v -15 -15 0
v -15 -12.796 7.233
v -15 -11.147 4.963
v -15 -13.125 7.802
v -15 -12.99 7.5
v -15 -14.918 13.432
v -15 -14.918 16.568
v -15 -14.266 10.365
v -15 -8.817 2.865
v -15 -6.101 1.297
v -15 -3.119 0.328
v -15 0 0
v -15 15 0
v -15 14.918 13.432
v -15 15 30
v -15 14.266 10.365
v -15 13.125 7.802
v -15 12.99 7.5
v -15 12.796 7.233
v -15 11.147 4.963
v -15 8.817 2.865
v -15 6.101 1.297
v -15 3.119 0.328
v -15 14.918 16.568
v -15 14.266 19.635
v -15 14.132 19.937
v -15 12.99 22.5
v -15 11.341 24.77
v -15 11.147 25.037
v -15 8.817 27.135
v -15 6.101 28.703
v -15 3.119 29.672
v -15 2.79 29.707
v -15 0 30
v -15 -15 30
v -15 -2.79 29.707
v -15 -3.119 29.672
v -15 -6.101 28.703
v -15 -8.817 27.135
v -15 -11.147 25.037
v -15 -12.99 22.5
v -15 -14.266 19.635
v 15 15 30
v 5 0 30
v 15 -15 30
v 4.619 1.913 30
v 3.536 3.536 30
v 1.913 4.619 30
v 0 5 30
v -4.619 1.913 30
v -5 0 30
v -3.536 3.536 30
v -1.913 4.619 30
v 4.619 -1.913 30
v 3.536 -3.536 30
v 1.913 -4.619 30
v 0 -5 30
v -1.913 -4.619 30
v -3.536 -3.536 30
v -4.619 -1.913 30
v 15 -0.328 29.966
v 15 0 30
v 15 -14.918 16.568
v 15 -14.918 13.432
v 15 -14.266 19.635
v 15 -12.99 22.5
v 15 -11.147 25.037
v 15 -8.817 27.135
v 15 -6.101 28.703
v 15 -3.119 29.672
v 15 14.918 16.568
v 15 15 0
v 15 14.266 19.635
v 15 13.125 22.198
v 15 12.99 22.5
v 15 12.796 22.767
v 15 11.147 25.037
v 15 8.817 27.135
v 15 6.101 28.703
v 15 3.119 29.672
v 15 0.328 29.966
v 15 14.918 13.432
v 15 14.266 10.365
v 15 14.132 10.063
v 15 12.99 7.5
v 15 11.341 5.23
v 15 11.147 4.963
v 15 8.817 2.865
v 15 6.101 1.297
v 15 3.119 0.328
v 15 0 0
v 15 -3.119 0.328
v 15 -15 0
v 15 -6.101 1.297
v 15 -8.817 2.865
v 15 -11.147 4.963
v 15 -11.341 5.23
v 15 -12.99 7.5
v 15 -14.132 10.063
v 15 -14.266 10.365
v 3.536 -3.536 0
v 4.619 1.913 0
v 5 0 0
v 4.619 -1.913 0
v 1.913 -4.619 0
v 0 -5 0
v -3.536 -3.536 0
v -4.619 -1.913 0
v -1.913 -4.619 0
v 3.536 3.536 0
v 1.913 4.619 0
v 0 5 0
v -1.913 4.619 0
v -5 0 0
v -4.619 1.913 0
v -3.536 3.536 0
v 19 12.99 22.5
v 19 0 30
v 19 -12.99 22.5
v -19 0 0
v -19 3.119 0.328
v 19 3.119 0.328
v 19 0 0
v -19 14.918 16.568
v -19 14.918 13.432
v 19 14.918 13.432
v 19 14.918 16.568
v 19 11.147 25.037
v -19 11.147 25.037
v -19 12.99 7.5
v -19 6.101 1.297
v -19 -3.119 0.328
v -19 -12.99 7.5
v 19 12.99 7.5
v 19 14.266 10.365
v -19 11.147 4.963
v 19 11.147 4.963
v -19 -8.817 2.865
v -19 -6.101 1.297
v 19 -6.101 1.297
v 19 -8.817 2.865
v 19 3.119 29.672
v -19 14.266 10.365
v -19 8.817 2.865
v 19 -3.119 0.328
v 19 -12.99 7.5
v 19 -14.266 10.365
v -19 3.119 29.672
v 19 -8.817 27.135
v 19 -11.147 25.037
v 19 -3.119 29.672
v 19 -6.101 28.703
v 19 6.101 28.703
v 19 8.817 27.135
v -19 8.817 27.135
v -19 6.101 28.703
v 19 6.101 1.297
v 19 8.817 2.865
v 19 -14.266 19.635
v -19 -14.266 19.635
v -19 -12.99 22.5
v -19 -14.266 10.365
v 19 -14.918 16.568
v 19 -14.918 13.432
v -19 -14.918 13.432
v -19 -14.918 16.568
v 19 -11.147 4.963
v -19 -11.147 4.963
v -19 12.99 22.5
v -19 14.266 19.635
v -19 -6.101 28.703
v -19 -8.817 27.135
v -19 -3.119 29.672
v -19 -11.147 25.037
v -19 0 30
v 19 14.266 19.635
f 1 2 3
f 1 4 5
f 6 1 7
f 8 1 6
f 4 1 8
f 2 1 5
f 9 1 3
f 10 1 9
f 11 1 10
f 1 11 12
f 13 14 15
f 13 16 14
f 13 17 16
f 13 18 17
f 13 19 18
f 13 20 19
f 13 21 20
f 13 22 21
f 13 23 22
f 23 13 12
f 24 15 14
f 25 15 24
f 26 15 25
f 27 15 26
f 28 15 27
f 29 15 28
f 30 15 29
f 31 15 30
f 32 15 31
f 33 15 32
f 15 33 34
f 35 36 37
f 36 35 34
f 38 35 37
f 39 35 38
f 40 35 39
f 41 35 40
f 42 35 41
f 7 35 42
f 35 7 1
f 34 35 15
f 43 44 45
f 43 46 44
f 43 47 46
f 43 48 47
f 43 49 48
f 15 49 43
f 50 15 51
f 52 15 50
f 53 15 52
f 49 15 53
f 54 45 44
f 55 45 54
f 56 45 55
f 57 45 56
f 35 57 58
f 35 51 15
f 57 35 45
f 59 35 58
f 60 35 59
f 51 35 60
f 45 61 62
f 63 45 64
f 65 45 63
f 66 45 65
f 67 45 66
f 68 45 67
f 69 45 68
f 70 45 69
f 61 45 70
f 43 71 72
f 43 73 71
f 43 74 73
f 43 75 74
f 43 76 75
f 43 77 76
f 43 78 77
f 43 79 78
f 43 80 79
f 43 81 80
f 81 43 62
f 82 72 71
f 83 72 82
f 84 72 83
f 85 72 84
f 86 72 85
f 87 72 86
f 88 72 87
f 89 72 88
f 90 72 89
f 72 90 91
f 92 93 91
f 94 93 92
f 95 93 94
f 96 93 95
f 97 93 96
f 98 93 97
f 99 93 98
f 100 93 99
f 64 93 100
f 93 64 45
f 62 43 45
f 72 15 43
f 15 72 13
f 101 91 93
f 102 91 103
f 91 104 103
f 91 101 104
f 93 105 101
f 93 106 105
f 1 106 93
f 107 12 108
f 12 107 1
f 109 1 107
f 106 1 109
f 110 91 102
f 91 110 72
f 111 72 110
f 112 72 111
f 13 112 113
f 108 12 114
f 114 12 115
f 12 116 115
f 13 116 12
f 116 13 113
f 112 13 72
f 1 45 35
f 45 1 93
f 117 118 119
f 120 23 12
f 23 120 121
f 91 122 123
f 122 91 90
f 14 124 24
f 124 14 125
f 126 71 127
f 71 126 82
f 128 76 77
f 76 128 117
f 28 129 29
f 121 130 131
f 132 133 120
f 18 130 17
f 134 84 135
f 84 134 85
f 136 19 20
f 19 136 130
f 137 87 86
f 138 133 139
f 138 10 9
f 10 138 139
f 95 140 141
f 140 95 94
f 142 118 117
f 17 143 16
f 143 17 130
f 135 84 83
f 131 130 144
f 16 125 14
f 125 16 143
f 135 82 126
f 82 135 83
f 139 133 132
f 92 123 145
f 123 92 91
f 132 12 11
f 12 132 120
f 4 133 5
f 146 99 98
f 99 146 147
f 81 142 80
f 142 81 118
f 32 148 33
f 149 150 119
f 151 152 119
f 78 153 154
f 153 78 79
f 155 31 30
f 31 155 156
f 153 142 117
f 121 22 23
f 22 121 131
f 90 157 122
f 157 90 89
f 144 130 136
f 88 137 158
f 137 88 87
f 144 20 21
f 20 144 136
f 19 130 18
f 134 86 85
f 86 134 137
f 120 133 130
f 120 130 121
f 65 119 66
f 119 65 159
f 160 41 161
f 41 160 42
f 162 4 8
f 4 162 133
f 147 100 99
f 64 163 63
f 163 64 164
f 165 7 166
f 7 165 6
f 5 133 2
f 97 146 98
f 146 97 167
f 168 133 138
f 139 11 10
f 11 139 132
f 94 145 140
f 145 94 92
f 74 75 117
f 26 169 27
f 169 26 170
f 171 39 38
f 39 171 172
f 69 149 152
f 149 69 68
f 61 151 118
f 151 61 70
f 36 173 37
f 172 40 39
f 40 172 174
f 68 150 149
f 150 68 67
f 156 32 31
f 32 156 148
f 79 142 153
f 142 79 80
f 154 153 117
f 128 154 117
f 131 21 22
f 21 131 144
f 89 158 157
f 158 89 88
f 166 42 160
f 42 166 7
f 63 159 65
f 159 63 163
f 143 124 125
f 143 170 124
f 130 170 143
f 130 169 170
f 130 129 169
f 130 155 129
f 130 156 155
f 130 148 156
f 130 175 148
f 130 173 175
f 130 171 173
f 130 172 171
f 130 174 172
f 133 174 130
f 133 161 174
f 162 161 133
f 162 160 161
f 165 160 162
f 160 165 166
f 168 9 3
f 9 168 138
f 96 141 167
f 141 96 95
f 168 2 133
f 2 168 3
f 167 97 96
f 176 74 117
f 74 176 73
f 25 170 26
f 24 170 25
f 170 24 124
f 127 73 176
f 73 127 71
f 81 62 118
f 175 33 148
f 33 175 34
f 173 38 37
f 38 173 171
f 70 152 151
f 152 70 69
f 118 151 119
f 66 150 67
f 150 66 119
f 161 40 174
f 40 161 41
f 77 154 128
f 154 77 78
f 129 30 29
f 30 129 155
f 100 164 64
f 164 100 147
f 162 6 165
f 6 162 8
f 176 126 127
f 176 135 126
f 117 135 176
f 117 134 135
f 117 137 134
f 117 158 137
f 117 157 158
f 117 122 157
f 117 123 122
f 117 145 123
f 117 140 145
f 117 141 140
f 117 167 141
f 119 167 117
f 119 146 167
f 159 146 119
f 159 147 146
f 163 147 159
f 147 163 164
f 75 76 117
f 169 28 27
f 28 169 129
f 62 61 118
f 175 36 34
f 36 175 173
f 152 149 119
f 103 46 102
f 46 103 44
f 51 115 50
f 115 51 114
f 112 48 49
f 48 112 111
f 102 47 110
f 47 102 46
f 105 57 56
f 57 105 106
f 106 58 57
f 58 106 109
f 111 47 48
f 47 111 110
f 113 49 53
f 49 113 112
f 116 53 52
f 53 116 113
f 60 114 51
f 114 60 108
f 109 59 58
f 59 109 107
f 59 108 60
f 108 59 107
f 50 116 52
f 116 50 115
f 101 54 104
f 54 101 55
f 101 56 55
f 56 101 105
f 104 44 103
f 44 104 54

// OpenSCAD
cube_size = 30; // [10:Small,20:Medium,30:Large]

hole_diameter = 10; 
hole_radius = hole_diameter/2;

// How deep should the center hole be?
hole_depth = 50; // [0,1,5,50]

show_wheels = "yes"; // [yes,no]

// How thick should the side wheels be?
wheel_thickness = 4; // [1:40]

// ignore this variable!
// foo=1;

// don't turn functions into params!
function BEZ03(u) = pow((1-u), 3);

// ignore variable values
bing = 3+4;
baz = 3 / hole_depth;

difference() {
  union() {
    translate([0, 0, cube_size/2]) cube([cube_size,cube_size,cube_size], center=true);
    if (show_wheels == "yes") {
      translate([0, 0, cube_size/2]) rotate([0, 90, 0]) {
        cylinder(r=cube_size/2, h=cube_size+(wheel_thickness*2), center=true);
      }
    }
  }
  translate([0, 0, cube_size-hole_depth]) cylinder(r=hole_radius, h=hole_depth);
}
        
